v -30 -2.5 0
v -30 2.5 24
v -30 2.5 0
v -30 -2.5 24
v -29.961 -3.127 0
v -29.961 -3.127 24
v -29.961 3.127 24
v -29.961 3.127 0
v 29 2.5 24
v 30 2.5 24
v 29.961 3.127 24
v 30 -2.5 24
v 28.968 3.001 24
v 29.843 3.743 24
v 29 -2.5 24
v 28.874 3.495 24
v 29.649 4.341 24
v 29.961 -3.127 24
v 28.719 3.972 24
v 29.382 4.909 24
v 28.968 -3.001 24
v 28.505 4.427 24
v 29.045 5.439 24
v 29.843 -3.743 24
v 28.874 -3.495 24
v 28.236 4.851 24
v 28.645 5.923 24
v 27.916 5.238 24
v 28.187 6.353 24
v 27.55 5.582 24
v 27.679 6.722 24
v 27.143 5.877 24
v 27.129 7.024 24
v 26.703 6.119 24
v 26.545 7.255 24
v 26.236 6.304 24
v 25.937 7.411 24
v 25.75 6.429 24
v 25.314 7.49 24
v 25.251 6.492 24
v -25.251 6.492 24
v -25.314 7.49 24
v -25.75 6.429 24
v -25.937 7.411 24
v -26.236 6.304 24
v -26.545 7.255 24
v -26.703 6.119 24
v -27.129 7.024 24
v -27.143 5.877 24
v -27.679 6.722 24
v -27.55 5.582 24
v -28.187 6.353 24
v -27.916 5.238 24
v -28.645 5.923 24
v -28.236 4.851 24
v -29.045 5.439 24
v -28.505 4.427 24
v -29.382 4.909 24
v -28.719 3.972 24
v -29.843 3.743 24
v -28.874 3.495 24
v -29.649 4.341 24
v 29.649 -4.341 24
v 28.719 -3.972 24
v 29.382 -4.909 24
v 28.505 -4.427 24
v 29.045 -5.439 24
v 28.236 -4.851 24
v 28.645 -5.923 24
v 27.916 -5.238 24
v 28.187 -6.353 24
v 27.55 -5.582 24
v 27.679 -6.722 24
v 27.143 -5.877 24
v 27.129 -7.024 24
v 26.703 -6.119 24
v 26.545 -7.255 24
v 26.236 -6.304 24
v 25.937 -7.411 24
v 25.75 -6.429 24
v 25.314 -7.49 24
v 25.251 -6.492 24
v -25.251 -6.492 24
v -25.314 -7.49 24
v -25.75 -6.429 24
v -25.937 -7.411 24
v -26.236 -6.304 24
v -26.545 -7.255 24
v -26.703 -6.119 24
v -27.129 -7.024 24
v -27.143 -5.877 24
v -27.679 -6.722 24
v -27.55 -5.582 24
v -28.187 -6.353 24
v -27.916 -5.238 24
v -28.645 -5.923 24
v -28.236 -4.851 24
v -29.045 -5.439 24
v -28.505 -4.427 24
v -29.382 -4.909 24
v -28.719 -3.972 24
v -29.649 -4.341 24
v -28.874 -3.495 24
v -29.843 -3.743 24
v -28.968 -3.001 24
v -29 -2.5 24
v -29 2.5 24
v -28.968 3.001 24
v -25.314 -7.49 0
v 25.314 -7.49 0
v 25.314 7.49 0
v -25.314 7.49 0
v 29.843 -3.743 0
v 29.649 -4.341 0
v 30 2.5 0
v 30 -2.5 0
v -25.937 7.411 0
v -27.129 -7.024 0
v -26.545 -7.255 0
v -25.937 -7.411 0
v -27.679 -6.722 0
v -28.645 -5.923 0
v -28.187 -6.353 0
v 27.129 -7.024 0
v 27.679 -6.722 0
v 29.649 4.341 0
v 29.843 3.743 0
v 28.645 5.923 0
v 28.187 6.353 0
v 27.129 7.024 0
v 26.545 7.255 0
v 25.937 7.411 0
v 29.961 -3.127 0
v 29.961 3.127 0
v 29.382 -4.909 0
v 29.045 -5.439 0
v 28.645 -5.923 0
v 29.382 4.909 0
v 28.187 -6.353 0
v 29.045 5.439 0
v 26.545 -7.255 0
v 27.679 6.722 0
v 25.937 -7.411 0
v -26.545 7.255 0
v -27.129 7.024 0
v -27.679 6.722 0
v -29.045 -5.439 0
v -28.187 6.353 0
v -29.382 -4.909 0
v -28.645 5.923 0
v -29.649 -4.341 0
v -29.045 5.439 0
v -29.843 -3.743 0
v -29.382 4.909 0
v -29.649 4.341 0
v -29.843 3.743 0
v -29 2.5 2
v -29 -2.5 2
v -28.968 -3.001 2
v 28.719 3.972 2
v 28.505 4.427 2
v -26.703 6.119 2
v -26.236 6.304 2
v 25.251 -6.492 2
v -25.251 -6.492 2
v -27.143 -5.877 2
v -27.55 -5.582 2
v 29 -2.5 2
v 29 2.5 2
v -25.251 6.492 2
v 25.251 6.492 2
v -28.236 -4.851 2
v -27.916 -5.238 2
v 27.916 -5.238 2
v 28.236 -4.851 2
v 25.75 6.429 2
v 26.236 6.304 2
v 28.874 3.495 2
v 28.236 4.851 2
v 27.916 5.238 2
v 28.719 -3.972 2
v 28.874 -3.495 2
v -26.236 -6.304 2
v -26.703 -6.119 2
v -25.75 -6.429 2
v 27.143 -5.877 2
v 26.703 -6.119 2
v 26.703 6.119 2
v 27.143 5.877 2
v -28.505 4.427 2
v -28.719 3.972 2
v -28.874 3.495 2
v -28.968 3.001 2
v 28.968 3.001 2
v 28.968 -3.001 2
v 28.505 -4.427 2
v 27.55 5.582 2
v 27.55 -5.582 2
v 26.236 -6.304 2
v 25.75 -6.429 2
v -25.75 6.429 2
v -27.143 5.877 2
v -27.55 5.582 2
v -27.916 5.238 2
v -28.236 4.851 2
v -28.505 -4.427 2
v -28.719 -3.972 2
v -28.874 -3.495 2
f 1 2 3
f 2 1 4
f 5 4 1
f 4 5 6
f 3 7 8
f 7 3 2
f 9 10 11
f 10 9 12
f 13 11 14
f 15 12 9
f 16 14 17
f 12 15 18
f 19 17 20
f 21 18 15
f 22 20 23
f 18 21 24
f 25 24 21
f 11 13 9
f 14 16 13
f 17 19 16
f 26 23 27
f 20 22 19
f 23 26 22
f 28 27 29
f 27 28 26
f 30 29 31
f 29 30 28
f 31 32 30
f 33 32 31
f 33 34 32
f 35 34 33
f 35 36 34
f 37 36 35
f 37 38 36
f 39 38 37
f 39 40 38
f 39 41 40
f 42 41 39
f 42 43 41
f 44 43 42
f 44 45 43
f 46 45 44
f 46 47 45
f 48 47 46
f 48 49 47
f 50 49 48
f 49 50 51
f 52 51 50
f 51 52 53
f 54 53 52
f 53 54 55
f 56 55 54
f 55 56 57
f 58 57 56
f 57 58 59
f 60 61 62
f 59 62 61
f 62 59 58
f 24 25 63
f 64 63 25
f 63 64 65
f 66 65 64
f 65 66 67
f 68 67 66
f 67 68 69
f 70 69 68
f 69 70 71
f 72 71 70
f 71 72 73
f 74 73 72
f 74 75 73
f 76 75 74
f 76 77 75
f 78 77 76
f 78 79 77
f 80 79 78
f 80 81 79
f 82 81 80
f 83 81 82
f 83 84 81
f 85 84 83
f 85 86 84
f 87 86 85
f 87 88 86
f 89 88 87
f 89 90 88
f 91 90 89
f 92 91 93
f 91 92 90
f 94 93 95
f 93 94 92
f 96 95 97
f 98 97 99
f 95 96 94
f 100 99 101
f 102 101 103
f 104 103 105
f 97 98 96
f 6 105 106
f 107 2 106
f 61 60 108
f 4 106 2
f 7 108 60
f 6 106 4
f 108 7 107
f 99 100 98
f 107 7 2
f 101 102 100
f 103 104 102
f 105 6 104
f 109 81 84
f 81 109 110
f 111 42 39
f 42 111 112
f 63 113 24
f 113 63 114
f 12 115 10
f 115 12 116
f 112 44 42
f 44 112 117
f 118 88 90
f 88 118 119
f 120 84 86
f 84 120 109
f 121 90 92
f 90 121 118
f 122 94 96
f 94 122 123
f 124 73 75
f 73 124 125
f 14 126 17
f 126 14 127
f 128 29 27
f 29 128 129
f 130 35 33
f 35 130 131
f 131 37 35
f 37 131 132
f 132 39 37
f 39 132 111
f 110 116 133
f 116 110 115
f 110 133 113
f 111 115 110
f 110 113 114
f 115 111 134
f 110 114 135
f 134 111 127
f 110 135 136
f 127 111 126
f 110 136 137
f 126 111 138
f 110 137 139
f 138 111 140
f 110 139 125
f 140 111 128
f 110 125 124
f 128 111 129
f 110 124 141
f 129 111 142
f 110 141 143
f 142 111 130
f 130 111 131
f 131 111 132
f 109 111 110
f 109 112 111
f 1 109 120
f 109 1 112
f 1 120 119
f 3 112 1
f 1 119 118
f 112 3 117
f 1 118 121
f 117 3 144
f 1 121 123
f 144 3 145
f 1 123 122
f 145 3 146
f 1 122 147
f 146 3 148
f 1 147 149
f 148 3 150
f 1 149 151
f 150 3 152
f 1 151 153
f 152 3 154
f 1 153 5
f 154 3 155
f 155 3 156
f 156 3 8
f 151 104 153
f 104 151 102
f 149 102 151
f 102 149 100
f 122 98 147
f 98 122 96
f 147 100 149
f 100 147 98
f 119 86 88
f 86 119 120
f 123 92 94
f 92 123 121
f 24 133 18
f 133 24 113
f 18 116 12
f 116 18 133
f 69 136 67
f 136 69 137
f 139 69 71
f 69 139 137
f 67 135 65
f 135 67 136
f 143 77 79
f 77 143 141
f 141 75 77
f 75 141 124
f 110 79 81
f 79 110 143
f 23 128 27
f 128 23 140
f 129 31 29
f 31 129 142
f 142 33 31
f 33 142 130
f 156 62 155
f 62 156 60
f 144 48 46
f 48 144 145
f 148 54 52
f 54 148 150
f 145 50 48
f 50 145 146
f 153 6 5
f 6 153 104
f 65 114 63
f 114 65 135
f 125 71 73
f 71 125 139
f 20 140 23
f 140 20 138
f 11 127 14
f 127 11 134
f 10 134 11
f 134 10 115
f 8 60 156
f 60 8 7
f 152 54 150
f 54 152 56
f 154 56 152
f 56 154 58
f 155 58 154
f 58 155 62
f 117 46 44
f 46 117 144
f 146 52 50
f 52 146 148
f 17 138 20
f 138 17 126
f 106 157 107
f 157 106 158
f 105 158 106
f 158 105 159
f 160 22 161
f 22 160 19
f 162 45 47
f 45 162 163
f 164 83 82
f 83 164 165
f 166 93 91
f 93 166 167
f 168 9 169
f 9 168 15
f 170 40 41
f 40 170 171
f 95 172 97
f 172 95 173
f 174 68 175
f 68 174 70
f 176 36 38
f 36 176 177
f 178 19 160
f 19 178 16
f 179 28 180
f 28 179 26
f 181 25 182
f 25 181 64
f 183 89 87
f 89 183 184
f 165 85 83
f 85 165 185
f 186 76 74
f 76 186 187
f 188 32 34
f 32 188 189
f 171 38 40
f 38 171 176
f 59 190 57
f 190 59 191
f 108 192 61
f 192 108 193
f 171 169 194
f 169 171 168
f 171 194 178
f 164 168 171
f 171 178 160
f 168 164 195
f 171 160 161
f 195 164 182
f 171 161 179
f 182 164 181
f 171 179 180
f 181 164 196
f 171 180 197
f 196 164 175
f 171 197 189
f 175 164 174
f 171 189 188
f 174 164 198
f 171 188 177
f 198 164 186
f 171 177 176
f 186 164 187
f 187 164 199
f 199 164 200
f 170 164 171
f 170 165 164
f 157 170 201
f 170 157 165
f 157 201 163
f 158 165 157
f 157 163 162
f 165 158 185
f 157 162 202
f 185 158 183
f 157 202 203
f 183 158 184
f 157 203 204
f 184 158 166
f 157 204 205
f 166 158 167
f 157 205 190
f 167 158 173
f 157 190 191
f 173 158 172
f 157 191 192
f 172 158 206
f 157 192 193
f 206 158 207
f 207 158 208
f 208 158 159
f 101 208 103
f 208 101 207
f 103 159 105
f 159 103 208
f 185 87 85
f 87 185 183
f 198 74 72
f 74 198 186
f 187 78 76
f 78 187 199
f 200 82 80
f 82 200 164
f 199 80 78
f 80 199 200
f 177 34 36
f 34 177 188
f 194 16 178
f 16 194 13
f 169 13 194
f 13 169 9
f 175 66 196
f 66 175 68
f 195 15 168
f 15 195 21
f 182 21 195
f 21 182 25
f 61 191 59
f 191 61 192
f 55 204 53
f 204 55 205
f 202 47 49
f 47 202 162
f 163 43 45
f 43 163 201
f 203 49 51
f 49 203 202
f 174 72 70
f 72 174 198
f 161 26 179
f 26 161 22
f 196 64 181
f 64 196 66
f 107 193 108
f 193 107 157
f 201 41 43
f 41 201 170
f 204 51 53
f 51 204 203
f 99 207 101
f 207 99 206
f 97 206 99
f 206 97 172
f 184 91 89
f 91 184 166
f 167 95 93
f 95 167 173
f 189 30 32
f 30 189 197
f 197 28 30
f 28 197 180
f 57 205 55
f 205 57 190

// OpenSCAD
$fn = 50;


difference() {
	union() {
		hull() {
			translate(v = [-25.0000000000, 2.5000000000, 0]) {
				cylinder(h = 24, r = 5);
			}
			translate(v = [25.0000000000, 2.5000000000, 0]) {
				cylinder(h = 24, r = 5);
			}
			translate(v = [-25.0000000000, -2.5000000000, 0]) {
				cylinder(h = 24, r = 5);
			}
			translate(v = [25.0000000000, -2.5000000000, 0]) {
				cylinder(h = 24, r = 5);
			}
		}
	}
	union() {
		translate(v = [0, 0, 2]) {
			hull() {
				translate(v = [-25.0000000000, 2.5000000000, 0]) {
					cylinder(h = 22, r = 4);
				}
				translate(v = [25.0000000000, 2.5000000000, 0]) {
					cylinder(h = 22, r = 4);
				}
				translate(v = [-25.0000000000, -2.5000000000, 0]) {
					cylinder(h = 22, r = 4);
				}
				translate(v = [25.0000000000, -2.5000000000, 0]) {
					cylinder(h = 22, r = 4);
				}
			}
		}
	}
}
